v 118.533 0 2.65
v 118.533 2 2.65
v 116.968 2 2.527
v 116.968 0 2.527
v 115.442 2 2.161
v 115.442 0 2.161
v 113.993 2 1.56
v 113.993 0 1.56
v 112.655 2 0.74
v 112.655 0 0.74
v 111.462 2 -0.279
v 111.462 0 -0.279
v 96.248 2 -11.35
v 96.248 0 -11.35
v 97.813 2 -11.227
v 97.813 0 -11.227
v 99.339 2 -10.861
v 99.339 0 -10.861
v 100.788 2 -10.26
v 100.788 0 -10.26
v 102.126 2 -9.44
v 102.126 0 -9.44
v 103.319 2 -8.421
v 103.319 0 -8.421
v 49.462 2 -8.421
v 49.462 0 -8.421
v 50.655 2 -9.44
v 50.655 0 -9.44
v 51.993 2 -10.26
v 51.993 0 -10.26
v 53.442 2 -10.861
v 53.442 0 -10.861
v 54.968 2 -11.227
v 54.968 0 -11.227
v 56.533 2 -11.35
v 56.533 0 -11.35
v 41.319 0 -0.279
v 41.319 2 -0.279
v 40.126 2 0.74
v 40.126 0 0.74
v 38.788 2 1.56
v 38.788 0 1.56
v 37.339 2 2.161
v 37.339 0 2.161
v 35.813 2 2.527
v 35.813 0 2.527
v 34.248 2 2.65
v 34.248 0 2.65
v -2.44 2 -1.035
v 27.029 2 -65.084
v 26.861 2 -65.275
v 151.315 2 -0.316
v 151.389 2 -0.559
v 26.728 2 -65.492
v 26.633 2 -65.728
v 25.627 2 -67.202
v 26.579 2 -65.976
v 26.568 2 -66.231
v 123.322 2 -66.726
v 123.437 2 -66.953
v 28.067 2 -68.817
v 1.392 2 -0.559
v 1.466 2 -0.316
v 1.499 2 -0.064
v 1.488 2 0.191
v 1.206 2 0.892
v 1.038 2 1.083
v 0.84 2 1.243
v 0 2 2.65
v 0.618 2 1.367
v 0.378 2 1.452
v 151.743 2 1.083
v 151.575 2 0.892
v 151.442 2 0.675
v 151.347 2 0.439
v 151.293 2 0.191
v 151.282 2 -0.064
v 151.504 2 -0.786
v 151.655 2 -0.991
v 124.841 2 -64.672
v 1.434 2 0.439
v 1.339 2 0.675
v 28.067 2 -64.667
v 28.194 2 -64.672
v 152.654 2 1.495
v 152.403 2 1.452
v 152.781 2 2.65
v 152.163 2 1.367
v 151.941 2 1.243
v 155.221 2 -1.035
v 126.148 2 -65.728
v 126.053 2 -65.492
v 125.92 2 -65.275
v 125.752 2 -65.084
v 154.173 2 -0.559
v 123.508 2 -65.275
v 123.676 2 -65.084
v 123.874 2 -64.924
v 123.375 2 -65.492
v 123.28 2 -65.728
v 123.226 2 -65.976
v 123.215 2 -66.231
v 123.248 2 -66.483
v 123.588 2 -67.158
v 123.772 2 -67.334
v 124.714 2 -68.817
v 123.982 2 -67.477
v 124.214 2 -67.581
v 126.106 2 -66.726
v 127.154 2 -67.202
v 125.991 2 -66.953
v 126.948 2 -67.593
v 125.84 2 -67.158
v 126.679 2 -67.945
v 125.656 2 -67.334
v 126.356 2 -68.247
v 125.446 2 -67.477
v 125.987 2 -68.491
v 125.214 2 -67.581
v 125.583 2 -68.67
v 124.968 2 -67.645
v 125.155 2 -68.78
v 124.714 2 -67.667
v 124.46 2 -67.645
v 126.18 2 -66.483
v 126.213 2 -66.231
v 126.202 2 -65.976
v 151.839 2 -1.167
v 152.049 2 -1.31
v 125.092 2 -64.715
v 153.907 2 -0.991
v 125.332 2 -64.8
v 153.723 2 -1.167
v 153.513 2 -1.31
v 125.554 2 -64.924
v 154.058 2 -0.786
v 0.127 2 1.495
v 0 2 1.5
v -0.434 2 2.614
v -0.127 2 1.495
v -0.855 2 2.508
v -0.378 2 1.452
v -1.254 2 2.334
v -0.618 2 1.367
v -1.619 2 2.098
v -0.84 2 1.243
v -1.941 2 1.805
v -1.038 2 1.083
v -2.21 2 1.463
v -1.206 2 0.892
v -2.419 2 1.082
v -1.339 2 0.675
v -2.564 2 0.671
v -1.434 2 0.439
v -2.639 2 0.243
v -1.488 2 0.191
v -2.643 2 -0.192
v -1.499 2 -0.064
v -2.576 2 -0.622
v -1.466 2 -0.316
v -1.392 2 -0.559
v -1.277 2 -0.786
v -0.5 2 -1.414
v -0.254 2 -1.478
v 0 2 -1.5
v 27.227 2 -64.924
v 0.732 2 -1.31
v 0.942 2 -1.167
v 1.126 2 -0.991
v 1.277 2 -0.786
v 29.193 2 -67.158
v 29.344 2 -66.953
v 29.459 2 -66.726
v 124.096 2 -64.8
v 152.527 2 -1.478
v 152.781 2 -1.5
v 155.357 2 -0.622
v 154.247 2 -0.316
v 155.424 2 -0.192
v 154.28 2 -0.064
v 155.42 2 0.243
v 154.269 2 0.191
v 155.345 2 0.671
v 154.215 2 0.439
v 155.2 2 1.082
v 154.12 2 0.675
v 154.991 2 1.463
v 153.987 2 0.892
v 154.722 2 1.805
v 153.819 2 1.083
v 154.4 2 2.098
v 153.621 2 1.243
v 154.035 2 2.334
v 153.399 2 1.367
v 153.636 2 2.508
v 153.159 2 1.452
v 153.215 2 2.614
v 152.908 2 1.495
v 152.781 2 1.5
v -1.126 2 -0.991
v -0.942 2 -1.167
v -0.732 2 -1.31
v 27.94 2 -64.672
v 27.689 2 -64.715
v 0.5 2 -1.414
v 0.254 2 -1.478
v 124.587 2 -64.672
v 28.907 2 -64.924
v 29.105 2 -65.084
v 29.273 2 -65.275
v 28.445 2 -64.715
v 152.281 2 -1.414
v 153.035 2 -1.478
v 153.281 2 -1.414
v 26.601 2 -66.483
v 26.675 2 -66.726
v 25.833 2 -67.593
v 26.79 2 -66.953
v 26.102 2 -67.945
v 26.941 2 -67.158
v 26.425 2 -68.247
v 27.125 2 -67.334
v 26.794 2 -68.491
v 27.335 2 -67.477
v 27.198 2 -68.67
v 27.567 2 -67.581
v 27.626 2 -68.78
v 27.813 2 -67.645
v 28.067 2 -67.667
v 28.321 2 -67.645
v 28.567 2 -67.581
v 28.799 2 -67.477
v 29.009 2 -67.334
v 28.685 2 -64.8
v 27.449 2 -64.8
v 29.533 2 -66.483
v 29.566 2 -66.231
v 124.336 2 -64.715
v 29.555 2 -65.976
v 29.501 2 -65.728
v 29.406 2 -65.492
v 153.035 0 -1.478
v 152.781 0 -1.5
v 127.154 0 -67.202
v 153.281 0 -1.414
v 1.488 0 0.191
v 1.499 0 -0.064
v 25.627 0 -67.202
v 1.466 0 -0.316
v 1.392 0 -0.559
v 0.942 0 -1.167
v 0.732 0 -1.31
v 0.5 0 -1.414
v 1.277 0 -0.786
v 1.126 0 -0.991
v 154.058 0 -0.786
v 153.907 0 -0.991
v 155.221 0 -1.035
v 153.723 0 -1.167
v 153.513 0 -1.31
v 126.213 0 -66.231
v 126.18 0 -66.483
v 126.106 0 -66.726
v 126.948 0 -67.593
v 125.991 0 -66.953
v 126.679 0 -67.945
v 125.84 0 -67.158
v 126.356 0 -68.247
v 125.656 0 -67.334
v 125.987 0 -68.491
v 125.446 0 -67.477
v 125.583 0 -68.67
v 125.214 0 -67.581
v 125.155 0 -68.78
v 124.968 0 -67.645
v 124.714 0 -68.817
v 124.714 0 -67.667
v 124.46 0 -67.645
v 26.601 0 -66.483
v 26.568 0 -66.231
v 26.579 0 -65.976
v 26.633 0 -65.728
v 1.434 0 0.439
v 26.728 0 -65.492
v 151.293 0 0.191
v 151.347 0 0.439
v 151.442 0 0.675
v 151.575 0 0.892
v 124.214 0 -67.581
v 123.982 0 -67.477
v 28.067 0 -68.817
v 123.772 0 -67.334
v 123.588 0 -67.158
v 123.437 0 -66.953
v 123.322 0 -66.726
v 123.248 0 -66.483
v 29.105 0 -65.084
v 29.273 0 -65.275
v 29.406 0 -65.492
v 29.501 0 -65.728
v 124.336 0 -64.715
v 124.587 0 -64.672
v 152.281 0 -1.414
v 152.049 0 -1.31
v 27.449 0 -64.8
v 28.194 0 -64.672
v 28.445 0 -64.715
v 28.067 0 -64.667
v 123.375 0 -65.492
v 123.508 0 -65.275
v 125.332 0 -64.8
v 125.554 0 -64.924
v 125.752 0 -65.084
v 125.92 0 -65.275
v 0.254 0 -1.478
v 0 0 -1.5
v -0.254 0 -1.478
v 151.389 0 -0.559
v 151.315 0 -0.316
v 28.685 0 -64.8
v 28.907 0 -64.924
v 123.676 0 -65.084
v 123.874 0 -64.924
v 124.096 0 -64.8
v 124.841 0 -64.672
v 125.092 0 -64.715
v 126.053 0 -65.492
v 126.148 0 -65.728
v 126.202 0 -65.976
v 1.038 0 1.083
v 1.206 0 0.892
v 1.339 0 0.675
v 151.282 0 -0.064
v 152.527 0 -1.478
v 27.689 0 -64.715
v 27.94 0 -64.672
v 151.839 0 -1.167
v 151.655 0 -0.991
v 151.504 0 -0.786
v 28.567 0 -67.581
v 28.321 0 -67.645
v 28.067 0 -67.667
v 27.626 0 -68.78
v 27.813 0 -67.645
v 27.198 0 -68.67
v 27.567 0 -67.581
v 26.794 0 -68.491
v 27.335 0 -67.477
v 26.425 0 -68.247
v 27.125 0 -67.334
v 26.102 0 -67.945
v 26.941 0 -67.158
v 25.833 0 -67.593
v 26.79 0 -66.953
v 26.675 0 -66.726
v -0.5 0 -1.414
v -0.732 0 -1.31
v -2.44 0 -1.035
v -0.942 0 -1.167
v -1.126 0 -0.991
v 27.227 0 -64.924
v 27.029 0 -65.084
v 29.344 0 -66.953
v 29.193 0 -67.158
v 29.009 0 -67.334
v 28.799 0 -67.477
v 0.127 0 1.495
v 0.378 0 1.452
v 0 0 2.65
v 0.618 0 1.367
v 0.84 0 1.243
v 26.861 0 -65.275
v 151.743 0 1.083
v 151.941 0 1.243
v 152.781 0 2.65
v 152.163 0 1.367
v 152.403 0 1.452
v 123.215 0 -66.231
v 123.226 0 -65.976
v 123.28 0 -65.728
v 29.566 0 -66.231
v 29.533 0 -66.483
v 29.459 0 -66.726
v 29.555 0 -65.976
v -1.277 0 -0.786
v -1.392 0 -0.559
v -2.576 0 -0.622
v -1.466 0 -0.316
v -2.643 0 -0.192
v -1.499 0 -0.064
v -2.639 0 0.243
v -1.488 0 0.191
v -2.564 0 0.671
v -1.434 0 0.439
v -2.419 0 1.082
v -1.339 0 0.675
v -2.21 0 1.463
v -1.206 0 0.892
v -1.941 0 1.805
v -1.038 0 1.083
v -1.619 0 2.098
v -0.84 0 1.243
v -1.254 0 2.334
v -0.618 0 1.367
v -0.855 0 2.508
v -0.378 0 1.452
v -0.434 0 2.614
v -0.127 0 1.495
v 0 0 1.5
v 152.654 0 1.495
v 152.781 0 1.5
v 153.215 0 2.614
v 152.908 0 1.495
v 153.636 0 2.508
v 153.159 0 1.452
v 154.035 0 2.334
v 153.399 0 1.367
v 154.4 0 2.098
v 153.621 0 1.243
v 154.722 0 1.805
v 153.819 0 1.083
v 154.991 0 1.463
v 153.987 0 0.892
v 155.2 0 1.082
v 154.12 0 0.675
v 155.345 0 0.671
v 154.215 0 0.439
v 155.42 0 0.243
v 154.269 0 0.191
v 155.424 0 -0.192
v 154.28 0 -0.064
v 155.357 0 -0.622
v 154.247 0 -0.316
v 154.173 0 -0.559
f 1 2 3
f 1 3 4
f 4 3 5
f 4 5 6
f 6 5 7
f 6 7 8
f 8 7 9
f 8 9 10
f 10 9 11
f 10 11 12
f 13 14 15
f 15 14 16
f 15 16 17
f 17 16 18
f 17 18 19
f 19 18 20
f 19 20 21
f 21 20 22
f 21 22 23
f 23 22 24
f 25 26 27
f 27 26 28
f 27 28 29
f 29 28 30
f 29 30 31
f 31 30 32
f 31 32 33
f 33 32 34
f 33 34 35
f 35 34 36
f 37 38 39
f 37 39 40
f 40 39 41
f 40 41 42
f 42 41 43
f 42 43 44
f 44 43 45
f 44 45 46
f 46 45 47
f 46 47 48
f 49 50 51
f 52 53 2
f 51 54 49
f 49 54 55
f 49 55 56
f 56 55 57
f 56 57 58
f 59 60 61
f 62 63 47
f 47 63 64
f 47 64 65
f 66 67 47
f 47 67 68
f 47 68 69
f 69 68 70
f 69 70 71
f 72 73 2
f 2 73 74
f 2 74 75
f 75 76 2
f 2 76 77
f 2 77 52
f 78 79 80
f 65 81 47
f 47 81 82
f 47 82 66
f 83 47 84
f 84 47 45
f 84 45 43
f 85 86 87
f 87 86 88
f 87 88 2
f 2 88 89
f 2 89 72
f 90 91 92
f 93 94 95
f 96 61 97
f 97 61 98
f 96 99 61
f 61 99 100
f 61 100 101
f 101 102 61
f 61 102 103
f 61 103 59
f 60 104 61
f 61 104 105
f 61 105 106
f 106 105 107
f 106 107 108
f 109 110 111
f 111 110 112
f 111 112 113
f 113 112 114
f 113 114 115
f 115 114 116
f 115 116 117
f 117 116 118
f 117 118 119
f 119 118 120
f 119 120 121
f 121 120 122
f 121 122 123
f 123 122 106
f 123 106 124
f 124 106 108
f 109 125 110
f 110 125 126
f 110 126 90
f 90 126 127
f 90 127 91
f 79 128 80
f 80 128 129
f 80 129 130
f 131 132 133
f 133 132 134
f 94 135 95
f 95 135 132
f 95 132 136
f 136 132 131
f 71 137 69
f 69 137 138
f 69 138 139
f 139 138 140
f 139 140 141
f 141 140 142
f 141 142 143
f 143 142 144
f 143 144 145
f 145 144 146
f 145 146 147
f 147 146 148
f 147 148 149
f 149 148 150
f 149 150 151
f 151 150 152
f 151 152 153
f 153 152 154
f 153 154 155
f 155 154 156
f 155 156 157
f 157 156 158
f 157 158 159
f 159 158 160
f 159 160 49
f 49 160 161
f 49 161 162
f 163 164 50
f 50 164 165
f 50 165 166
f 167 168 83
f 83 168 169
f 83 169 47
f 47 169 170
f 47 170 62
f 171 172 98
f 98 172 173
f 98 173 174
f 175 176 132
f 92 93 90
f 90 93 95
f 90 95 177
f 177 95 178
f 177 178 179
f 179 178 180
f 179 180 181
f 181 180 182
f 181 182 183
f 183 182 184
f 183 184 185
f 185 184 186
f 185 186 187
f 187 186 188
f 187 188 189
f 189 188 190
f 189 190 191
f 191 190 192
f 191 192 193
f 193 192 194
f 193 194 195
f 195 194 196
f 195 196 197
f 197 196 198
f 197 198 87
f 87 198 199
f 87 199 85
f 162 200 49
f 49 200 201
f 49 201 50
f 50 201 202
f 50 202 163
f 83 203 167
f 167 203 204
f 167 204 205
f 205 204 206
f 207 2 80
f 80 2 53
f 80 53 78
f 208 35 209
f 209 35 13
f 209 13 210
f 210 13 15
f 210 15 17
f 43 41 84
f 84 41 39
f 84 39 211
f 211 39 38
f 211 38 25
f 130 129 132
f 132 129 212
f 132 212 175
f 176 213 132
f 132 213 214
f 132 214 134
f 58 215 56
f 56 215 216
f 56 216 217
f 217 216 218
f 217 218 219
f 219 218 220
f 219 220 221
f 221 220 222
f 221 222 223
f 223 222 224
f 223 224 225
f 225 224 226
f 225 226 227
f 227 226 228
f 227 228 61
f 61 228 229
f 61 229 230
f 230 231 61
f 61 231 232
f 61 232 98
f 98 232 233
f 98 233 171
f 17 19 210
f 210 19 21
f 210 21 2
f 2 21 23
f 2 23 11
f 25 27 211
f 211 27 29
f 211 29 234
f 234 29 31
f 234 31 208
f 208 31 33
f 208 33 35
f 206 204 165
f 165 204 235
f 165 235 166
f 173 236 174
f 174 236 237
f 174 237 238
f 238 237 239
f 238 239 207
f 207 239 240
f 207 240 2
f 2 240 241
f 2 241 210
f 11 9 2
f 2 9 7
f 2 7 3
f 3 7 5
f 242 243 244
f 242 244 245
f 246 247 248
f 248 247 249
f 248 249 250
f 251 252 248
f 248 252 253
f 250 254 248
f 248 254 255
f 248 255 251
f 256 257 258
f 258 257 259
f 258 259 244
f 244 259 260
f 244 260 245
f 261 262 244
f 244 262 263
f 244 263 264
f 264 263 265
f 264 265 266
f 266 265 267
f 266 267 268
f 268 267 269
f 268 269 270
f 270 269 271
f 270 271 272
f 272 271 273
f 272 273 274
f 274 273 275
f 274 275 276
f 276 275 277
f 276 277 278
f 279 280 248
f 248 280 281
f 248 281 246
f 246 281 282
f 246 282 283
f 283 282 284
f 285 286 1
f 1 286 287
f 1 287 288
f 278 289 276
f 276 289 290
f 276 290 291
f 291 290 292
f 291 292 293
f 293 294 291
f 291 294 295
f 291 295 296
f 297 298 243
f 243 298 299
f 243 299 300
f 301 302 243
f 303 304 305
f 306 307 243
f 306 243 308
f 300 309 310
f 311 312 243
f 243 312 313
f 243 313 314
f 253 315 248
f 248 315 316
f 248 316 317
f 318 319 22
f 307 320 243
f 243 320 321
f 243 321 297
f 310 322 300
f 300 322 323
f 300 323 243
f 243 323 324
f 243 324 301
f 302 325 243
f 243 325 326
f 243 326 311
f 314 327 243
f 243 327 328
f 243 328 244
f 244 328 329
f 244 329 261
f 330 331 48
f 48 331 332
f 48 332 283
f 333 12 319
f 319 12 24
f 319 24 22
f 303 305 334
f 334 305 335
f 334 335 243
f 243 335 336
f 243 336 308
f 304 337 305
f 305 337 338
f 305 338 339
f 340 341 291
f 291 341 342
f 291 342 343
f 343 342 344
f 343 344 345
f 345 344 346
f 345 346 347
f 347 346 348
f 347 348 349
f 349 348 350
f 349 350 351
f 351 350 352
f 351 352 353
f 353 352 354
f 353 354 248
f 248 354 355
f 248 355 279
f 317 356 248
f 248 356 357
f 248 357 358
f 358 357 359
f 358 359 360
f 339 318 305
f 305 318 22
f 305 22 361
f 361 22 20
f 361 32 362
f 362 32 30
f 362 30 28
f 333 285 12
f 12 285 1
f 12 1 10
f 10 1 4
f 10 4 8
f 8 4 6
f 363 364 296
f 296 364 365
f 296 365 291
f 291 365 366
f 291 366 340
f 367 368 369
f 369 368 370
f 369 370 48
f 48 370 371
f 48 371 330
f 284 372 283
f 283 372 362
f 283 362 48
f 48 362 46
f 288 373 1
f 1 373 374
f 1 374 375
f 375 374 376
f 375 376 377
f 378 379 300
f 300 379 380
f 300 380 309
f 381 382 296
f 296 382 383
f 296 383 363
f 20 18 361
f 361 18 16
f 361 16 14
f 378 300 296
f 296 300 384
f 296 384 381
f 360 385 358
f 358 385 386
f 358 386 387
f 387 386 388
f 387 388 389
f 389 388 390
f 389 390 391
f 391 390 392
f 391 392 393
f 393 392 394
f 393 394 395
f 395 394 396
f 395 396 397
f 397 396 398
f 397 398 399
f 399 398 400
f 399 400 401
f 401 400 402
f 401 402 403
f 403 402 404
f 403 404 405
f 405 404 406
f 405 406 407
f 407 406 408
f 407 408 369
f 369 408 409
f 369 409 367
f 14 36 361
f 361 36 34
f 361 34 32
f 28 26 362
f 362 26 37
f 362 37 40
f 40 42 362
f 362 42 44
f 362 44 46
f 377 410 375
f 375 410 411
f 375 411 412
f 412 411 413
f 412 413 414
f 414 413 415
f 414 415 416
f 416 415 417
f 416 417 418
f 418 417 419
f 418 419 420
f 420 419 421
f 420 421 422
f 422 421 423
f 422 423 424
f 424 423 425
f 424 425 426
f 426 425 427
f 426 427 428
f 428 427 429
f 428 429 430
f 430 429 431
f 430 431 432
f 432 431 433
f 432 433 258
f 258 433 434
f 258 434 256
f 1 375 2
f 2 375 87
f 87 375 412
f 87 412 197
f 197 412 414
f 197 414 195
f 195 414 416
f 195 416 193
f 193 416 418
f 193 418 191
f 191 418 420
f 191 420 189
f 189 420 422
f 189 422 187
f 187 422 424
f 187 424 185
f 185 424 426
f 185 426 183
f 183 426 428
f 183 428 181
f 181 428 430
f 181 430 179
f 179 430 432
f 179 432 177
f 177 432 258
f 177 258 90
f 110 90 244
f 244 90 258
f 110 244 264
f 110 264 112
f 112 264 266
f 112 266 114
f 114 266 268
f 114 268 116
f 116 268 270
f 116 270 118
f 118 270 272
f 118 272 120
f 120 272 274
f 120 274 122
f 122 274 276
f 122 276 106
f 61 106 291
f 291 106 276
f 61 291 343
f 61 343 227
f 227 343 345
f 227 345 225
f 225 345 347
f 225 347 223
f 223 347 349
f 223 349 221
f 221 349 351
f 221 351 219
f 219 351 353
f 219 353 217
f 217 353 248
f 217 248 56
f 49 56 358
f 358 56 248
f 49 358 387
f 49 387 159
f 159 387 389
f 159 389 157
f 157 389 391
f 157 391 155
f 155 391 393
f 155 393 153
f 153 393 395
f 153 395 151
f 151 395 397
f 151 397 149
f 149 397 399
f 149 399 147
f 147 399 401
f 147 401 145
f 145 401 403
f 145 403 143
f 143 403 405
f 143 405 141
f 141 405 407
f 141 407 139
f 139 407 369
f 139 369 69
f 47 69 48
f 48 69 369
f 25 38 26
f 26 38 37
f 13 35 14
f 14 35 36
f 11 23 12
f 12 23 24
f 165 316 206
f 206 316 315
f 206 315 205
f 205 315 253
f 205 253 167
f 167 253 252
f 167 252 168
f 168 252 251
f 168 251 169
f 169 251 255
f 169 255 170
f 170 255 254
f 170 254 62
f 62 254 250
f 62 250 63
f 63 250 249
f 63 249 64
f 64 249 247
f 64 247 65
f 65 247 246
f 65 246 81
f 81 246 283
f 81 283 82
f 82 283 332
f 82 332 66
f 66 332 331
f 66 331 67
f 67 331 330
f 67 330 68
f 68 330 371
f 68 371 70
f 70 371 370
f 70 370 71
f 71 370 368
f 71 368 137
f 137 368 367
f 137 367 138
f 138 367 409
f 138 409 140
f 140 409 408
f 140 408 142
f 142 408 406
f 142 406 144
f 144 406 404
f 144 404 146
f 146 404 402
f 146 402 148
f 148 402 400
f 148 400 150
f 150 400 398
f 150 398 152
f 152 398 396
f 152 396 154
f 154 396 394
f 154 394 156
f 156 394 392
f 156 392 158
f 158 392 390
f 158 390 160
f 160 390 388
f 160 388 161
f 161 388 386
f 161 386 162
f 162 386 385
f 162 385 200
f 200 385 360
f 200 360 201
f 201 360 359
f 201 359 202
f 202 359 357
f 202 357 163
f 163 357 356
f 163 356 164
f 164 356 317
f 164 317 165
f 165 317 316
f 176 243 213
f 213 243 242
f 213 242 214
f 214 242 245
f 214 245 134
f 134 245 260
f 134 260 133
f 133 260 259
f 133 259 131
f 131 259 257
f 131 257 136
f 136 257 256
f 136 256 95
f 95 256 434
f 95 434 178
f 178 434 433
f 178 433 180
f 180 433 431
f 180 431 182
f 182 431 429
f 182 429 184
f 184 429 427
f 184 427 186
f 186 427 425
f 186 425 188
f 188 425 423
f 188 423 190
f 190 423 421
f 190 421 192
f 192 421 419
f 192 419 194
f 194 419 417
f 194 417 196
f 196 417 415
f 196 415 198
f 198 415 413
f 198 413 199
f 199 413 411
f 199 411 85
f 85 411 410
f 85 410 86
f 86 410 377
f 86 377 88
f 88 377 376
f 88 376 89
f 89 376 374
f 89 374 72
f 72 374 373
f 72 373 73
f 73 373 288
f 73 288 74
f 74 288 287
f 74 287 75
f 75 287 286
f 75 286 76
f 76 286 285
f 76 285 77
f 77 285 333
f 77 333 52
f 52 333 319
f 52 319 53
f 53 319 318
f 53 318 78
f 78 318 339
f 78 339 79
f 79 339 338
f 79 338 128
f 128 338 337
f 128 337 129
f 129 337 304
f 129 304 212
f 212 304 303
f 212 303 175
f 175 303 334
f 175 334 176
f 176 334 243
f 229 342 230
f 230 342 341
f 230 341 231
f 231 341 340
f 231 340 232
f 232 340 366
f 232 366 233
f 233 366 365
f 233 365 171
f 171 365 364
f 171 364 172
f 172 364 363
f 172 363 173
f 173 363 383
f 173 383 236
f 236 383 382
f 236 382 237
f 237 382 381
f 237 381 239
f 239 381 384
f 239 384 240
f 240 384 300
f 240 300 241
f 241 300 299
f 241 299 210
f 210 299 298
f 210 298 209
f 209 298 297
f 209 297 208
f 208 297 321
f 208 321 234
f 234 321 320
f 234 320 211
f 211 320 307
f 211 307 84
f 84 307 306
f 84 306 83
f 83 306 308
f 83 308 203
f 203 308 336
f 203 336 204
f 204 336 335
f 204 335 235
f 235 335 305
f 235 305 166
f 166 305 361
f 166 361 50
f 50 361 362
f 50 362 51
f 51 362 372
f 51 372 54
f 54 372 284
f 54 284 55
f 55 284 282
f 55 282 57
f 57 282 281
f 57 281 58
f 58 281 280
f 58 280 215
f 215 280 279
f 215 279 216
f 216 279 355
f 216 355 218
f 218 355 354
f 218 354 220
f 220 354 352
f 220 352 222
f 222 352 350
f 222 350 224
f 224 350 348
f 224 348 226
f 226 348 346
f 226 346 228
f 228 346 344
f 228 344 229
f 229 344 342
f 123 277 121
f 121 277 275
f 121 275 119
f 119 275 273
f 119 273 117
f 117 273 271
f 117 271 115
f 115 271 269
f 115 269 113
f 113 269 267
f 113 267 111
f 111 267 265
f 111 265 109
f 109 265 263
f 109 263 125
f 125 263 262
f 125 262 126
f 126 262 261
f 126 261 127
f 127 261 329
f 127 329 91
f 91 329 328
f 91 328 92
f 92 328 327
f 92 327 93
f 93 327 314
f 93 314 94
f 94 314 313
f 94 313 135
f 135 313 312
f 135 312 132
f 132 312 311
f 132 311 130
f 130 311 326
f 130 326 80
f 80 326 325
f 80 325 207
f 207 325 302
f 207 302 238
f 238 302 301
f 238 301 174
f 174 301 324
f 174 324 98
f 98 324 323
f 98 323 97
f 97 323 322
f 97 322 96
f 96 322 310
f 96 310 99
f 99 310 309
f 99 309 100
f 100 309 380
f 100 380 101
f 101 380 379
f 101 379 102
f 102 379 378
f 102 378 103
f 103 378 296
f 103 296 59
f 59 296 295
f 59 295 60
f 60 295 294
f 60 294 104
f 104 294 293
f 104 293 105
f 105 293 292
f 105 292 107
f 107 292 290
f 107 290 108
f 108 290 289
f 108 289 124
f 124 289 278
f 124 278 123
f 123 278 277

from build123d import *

# Parameters (mm, degrees)
SKETCH_1_R      = 1.5
EXTRUDE_1_DEPTH = 2
FILLET_1_R      = 10
FILLET_2_R      = 10
FILLET_3_R      = 10
FILLET_4_R      = 10


with BuildPart() as part:
    # 草图1 → 凸台-拉伸1 (new body)
    with BuildSketch(Plane(origin=(0, 0, 0), x_dir=(1, 0, 0), z_dir=(0, 1, 0))):
        with BuildLine():
            Line((-2.439592735, 1.034836841), (25.627407265, 67.201836841))
            ThreePointArc((25.627407265, 67.201836841), (26.60409495, 68.376617346), (28.067, 68.817))
            Line((28.067, 68.817), (124.714, 68.817))
            ThreePointArc((124.714, 68.817), (126.17690505, 68.376617346), (127.153592735, 67.201836841))
            Line((127.153592735, 67.201836841), (155.220592735, 1.034836841))
            ThreePointArc((155.220592735, 1.034836841), (154.990617346, -1.46290505), (152.781, -2.65))
            Line((152.781, -2.65), (114.3905, -2.65))
            Line((114.3905, -2.65), (100.3905, 11.35))
            Line((100.3905, 11.35), (52.3905, 11.35))
            Line((52.3905, 11.35), (38.3905, -2.65))
            Line((38.3905, -2.65), (0, -2.65))
            ThreePointArc((0, -2.65), (-2.209617346, -1.46290505), (-2.439592735, 1.034836841))
        make_face()
        with Locations(Location((0, 0, 0), (0, 0, 270))):
            Circle(SKETCH_1_R, mode=Mode.SUBTRACT)
        with Locations(Location((152.781, 0, 0), (0, 0, 270))):
            Circle(SKETCH_1_R, mode=Mode.SUBTRACT)
        with Locations(Location((28.067, 66.167, 0), (0, 0, 270))):
            Circle(SKETCH_1_R, mode=Mode.SUBTRACT)
        with Locations(Location((124.714, 66.167, 0), (0, 0, 90))):
            Circle(SKETCH_1_R, mode=Mode.SUBTRACT)
    extrude(amount=EXTRUDE_1_DEPTH)

    # 圆角1
    fillet_1_edges = [part.edges().sort_by_distance(p)[0] for p in [
        (38.3905, 1, 2.65),
    ]]
    fillet(fillet_1_edges, radius=FILLET_1_R)

    # 圆角2
    fillet_2_edges = [part.edges().sort_by_distance(p)[0] for p in [
        (52.3905, 1, -11.35),
    ]]
    fillet(fillet_2_edges, radius=FILLET_2_R)

    # 圆角3
    fillet_3_edges = [part.edges().sort_by_distance(p)[0] for p in [
        (100.3905, 1, -11.35),
    ]]
    fillet(fillet_3_edges, radius=FILLET_3_R)

    # 圆角4
    fillet_4_edges = [part.edges().sort_by_distance(p)[0] for p in [
        (114.3905, 1, 2.65),
    ]]
    fillet(fillet_4_edges, radius=FILLET_4_R)


solid = part.part
